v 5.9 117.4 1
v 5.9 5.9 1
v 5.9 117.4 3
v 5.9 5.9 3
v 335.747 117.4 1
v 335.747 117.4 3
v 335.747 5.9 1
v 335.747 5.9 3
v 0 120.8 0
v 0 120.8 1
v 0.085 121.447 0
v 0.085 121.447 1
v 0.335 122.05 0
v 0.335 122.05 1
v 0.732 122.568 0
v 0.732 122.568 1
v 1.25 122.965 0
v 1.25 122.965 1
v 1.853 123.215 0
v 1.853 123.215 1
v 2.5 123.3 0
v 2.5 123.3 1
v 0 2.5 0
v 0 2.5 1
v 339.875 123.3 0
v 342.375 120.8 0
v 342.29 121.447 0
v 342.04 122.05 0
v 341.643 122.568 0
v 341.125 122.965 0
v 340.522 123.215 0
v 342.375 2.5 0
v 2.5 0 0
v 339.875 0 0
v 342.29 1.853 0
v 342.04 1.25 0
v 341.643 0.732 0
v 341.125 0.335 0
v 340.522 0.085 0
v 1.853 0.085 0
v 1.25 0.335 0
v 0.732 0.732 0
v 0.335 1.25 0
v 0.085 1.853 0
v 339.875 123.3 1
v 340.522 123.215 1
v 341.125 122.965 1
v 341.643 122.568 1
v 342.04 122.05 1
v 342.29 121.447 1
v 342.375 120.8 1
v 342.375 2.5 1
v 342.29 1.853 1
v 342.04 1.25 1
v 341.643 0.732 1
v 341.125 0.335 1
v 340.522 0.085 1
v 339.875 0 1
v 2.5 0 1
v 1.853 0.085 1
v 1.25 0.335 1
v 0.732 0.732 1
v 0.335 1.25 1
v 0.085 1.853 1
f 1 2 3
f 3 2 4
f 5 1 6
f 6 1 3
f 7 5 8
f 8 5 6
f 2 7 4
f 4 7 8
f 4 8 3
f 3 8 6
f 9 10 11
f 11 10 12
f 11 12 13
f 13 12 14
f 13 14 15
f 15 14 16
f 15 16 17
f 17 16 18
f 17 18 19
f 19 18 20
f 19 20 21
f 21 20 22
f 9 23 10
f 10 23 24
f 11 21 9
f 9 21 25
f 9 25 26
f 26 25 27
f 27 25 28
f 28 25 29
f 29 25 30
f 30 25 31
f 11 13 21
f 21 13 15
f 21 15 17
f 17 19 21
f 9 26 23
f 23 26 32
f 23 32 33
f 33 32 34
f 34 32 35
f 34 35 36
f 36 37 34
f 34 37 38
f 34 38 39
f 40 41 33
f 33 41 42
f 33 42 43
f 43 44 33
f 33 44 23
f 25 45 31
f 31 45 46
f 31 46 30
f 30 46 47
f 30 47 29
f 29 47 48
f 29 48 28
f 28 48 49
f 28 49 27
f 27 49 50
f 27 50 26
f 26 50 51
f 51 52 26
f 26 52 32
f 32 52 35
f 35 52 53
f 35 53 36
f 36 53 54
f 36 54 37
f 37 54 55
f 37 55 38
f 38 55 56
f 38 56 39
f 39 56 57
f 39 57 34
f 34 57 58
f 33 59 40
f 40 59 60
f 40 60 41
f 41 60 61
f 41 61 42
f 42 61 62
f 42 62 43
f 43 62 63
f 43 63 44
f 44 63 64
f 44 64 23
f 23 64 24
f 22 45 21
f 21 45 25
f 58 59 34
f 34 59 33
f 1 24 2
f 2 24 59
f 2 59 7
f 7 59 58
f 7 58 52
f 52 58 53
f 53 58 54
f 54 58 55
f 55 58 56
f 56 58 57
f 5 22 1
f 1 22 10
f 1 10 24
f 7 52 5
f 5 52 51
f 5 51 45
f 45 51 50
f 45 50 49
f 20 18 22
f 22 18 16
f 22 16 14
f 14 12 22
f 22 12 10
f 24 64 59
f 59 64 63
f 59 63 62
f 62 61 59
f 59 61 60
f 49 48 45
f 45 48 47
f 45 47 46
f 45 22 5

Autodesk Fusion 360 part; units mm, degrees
sketch "Sketch1" plane through (0, 0, 0) normal (0, 0, 1) x (1, 0, 0)
  line L0 (0, 0) -> (342.375, 0)
  line L1 (342.375, 0) -> (342.375, 123.3)
  line L2 (342.375, 123.3) -> (0, 123.3)
  line L3 (0, 123.3) -> (0, 0)
  dimension "d1" = 342.375
  dimension "d2" = 123.3
extrude "Extrude1" add sketch "Sketch1" along normal blind 1
fillet "Fillet1" radius 2.5 4 edges at (0, 0, 0.5) (342.375, 0, 0.5) (342.375, 123.3, 0.5) (0, 123.3, 0.5)
sketch "Sketch2" plane through (0, 0, 1) normal (0, 0, 1) x (-1, 0, 0)
  arc A0 (-2.5, -123.3) -> (0, -120.8) centre (-2.5, -120.8) ccw
  line L0 (0, -120.8) -> (0, -2.5)
  arc A1 (0, -2.5) -> (-2.5, 0) centre (-2.5, -2.5) ccw
  line L1 (-2.5, 0) -> (-339.875, 0)
  arc A2 (-339.875, 0) -> (-342.375, -2.5) centre (-339.875, -2.5) ccw
  line L2 (-342.375, -2.5) -> (-342.375, -120.8)
  arc A3 (-342.375, -120.8) -> (-339.875, -123.3) centre (-339.875, -120.8) ccw
  line L3 (-339.875, -123.3) -> (-2.5, -123.3)
  line L4 (-5.5, -117.8) -> (-5.5, -5.5) construction
  line L5 (-5.5, -5.5) -> (-336.147, -5.5) construction
  line L6 (-5.5, -117.8) -> (-336.856, -117.8) construction
  line L7 (-336.147, -5.5) -> (-336.856, -117.8) construction
  line L8 (-336.147, -5.5) -> (-5.5, -117.8)
  line L9 (-5.5, -5.5) -> (-336.856, -117.8)
  line L10 (-5.9, -117.1907) -> (-5.9, -117.4)
  line L11 (-7.5002, -117.4) -> (-5.9, -117.4)
  line L12 (-8, -5.9) -> (-5.9, -5.9)
  line L13 (-5.9, -117.1907) -> (-5.9, -5.9)
  line L14 (-5.9, 0) -> (-5.9, 15)
  line L15 (-7.5002, -117.4) -> (-335.747, -117.4)
  line L16 (-8, -5.9) -> (-335.747, -5.9)
  line L17 (-335.747, -5.9) -> (-335.747, -117.4242)
  dimension "d7" = 5.5
  dimension "d8" = 5.5
  dimension "d9" = 5.5
  dimension "d10" = 6.228
  dimension "d11" = 5.519
  dimension "d16" = 0.4
  dimension "d17" = 0.4
  dimension "d18" = 0.4
extrude "Extrude2" add sketch "Sketch2" along normal blind 2 contours L8 L9 L12 L16 | L8 L9 L15 L16 L17 | L8 L9 L10 L11 L12 L13 | L8 L9 L11 L15
sketch "Sketch3" plane through (0, 0, 1) normal (0, 0, 1) x (-1, 0, 0)
  line L0 (-5.9, -5.9) -> (-5.9, -117.4)
  line L1 (-5.9, -117.4) -> (-335.747, -117.4)
  line L2 (-335.747, -117.4) -> (-335.747, -5.9)
  line L3 (-335.747, -5.9) -> (-5.9, -5.9)
  arc A0 (-2.5, -123.3) -> (0, -120.8) centre (-2.5, -120.8) ccw
  line L4 (0, -120.8) -> (0, -2.5)
  arc A1 (0, -2.5) -> (-2.5, 0) centre (-2.5, -2.5) ccw
  line L5 (-2.5, 0) -> (-339.875, 0)
  arc A2 (-339.875, 0) -> (-342.375, -2.5) centre (-339.875, -2.5) ccw
  line L6 (-342.375, -2.5) -> (-342.375, -120.8)
  arc A3 (-342.375, -120.8) -> (-339.875, -123.3) centre (-339.875, -120.8) ccw
  line L7 (-339.875, -123.3) -> (-2.5, -123.3)
  line L8 (-6.2203, -99.9759) -> (-6.2199, -118.8)
  line L9 (-6.2246, -4.5) -> (-6.2082, -61.8661)
  line L10 (-6.2082, -61.8661) -> (-6.2095, -61.8663)
  line L11 (0.0269, -120.8) -> (-0.7247, -2.5)
  line L12 (-125.03, -5.5) -> (-14.265, -5.5)
  line L13 (-14.2649, -117.8) -> (-73.858, -117.8)
  line L14 (-14.265, -4.5) -> (-6.2246, -4.5)
  line L15 (-14.265, -5.5) -> (-6.2247, -5.5)
  line L16 (-14.2649, -117.8004) -> (-6.2199, -117.8002)
  arc A4 (-2.4783, -123.3004) -> (0.0269, -120.8) centre (-2.459, -120.8147) ccw
  line L17 (-6.2095, -61.8663) -> (-6.2054, -78.9217)
  line L18 (-133.07, -5.5) -> (-133.07, -4.5)
  line L19 (-73.858, -117.8) -> (-73.858, -118.8)
  line L20 (-81.898, -118.8) -> (-81.898, -117.8)
  arc A5 (-0.7247, -2.5) -> (-3.225, 0) centre (-3.2248, -2.5001) ccw
  line L21 (-332.837, -117.8) -> (-333.8375, -117.8)
  line L22 (-332.8375, -4) -> (-332.8375, -2.5)
  line L23 (-332.837, -4) -> (-310.8413, -4)
  line L24 (-73.858, -117.8003) -> (-73.858, -118.8)
  line L25 (-73.858, -118.8) -> (-81.898, -118.8)
  line L26 (-340.62, -123.2958) -> (-335.838, -123.3)
  line L27 (-81.898, -118.8) -> (-81.898, -117.8)
  line L28 (-332.837, -118.8) -> (-332.837, -117.8)
  line L29 (-333.8375, -118.8) -> (-333.838, -118.8)
  arc A6 (-343.1178, -120.7937) -> (-340.62, -123.2958) centre (-340.6178, -120.7958) ccw
  line L30 (-247.164, -117.8) -> (-324.797, -117.8)
  line L31 (-296.48, -4.5) -> (-296.48, -5.5)
  line L32 (-333.8375, -117.8) -> (-333.8375, -118.8)
  line L33 (-337.5995, -117.8) -> (-337.5995, -4)
  line L34 (-333.838, -117.8) -> (-337.5995, -117.8)
  line L35 (-247.164, -118.8) -> (-247.164, -117.8)
  line L36 (-324.797, -118.8) -> (-332.837, -118.8)
  line L37 (-333.838, -118.8) -> (-333.838, -117.8)
  line L38 (-324.797, -117.8) -> (-324.797, -118.8)
  line L39 (-3.225, 0) -> (-340.5995, 0)
  line L40 (-343.0995, -99.75) -> (-343.1178, -120.7937)
  line L41 (-6.2083, -80.9225) -> (-6.2049, -97.9745)
  line L42 (-6.2062, -99.9739) -> (-6.2203, -99.9759)
  line L43 (-6.2065, -80.9222) -> (-6.2083, -80.9225)
  line L44 (-310.8413, -4) -> (-310.8413, -5.5)
  line L45 (-343.0995, -2.5) -> (-343.0995, -99.75)
  arc A7 (-0.7247, -2.5) -> (-3.225, 0.0001) centre (-3.2248, -2.5001) ccw
  line L46 (-6.2054, -78.9217) -> (-6.207, -78.922)
  line L47 (-332.837, -2.5) -> (-332.837, -4)
  line L48 (-337.5995, -4) -> (-332.8375, -4)
  line L49 (-304.52, -5.5) -> (-304.52, -4.5)
  arc A8 (-340.5995, 0) -> (-343.0995, -2.5) centre (-340.5995, -2.5) ccw
  line L50 (-335.838, -123.3) -> (-2.4783, -123.3004)
  line L51 (-310.8413, -5.5) -> (-304.52, -5.5)
  line L52 (-6.2083, -61.8661) -> (-6.2095, -61.8663)
  line L53 (-304.52, -4.5) -> (-296.48, -4.5)
  line L54 (-296.48, -5.5) -> (-133.07, -5.5)
  line L55 (-332.8375, -2.5) -> (-332.837, -2.5)
  line L56 (-14.265, -5.5) -> (-14.265, -4.5)
  line L57 (-14.265, -4.5) -> (-6.225, -4.5)
  line L58 (-6.2095, -61.8663) -> (-6.2054, -78.9217)
  line L59 (-6.225, -4.5) -> (-6.2083, -61.8661)
  line L60 (-81.898, -117.8) -> (-239.124, -117.8)
  line L61 (-337.5995, -117.8) -> (-337.5995, -4)
  line L62 (-3.225, 0.0001) -> (-340.5995, 0)
  line L63 (-335.838, -123.3) -> (-2.4783, -123.3)
  line L64 (-247.164, -117.8) -> (-324.797, -117.8)
  line L65 (-296.48, -5.5) -> (-133.07, -5.5)
  line L66 (-14.2649, -117.8004) -> (-73.858, -117.8003)
  line L67 (-6.2203, -99.9759) -> (-6.2199, -118.8)
  line L68 (-6.2065, -80.9222) -> (-6.2083, -80.9225)
  line L69 (-6.207, -78.922) -> (-6.2065, -80.9222)
  line L70 (-6.2083, -80.9225) -> (-6.2049, -97.9745)
  line L71 (-6.2049, -97.9745) -> (-6.2066, -97.9748)
  line L72 (-6.2066, -97.9748) -> (-6.2062, -99.9739)
  line L73 (-14.2649, -118.8) -> (-14.2649, -117.8004)
  arc A9 (-2.4783, -123.3) -> (0.0217, -120.8) centre (-2.4626, -120.8157) ccw
  line L74 (-125.03, -5.5) -> (-14.265, -5.5)
  line L75 (-6.2199, -118.8) -> (-14.2649, -118.8)
  line L76 (0.0217, -120.8) -> (-0.7247, -2.5)
  line L77 (-6.2062, -99.9739) -> (-6.2203, -99.9759)
  line L78 (-247.164, -118.8) -> (-247.164, -117.8)
  line L79 (-239.124, -118.8) -> (-247.164, -118.8)
  line L80 (-333.838, -118.8) -> (-333.838, -117.8)
  line L81 (-310.8413, -4) -> (-310.8413, -5.5)
  line L82 (-333.8375, -118.8) -> (-333.838, -118.8)
  line L83 (-333.8375, -117.8) -> (-333.8375, -118.8)
  line L84 (-332.8375, -4) -> (-332.8375, -2.5)
  line L85 (-332.837, -4) -> (-310.8413, -4)
  line L86 (-332.837, -117.8) -> (-333.8375, -117.8)
  line L87 (-332.837, -118.8) -> (-332.837, -117.8)
  line L88 (-332.8375, -2.5) -> (-332.837, -2.5)
  line L89 (-324.797, -118.8) -> (-332.837, -118.8)
  line L90 (-239.124, -117.8) -> (-239.124, -118.8)
  line L91 (-324.797, -117.8) -> (-324.797, -118.8)
  line L92 (-333.838, -117.8) -> (-337.5995, -117.8)
  line L93 (-296.48, -4.5) -> (-296.48, -5.5)
  line L94 (-332.837, -2.5) -> (-332.837, -4)
  arc A10 (-343.1178, -120.7937) -> (-340.62, -123.2958) centre (-340.6178, -120.7958) ccw
  line L95 (-343.0995, -99.75) -> (-343.1178, -120.7937)
  line L96 (-343.0995, -2.5) -> (-343.0995, -99.75)
  line L97 (-304.52, -5.5) -> (-304.52, -4.5)
  line L98 (-337.5995, -4) -> (-332.8375, -4)
  line L99 (-310.8413, -5.5) -> (-304.52, -5.5)
  arc A11 (-340.5995, 0) -> (-343.0995, -2.5) centre (-340.5995, -2.5) ccw
  line L100 (-304.52, -4.5) -> (-296.48, -4.5)
  line L101 (-340.62, -123.2958) -> (-335.838, -123.3)
  line L102 (-6.2066, -97.9748) -> (-6.2062, -99.9739)
  line L103 (-6.2199, -118.8) -> (-14.2649, -118.8)
  line L104 (-14.2649, -118.8) -> (-14.2649, -117.8)
  line L105 (-6.2049, -97.9745) -> (-6.2066, -97.9748)
  line L106 (-6.207, -78.922) -> (-6.2065, -80.9222)
  line L107 (-6.2054, -78.9217) -> (-6.207, -78.922)
  line L108 (-14.265, -5.5) -> (-14.265, -4.5)
  line L109 (-125.03, -4.5) -> (-125.03, -5.5)
  line L110 (-73.858, -118.8) -> (-81.898, -118.8)
  line L111 (-125.03, -4.5) -> (-125.03, -5.5)
  line L112 (-133.07, -4.5) -> (-125.03, -4.5)
  line L113 (-81.898, -117.8) -> (-239.124, -117.8)
  line L114 (-239.124, -117.8) -> (-239.124, -118.8)
  line L115 (-239.124, -118.8) -> (-247.164, -118.8)
  line L116 (-133.07, -5.5) -> (-133.07, -4.5)
  line L117 (-133.07, -4.5) -> (-125.03, -4.5)
  point P0 (-304.5, -5.5)
  dimension "d22" = 5.5
  dimension "d23" = 5.5
  dimension "d24" = 6.2339
  dimension "d25" = 5.5125
  dimension "d26" = 5.5
  dimension "d27" = 6.2276
  dimension "d28" = 5.5188
equation "d1 = 337.375 mm + 2.5 mm + 2.5 mm"
equation "d2 = 118.3 mm + 2.5 mm + 2.5 mm"
